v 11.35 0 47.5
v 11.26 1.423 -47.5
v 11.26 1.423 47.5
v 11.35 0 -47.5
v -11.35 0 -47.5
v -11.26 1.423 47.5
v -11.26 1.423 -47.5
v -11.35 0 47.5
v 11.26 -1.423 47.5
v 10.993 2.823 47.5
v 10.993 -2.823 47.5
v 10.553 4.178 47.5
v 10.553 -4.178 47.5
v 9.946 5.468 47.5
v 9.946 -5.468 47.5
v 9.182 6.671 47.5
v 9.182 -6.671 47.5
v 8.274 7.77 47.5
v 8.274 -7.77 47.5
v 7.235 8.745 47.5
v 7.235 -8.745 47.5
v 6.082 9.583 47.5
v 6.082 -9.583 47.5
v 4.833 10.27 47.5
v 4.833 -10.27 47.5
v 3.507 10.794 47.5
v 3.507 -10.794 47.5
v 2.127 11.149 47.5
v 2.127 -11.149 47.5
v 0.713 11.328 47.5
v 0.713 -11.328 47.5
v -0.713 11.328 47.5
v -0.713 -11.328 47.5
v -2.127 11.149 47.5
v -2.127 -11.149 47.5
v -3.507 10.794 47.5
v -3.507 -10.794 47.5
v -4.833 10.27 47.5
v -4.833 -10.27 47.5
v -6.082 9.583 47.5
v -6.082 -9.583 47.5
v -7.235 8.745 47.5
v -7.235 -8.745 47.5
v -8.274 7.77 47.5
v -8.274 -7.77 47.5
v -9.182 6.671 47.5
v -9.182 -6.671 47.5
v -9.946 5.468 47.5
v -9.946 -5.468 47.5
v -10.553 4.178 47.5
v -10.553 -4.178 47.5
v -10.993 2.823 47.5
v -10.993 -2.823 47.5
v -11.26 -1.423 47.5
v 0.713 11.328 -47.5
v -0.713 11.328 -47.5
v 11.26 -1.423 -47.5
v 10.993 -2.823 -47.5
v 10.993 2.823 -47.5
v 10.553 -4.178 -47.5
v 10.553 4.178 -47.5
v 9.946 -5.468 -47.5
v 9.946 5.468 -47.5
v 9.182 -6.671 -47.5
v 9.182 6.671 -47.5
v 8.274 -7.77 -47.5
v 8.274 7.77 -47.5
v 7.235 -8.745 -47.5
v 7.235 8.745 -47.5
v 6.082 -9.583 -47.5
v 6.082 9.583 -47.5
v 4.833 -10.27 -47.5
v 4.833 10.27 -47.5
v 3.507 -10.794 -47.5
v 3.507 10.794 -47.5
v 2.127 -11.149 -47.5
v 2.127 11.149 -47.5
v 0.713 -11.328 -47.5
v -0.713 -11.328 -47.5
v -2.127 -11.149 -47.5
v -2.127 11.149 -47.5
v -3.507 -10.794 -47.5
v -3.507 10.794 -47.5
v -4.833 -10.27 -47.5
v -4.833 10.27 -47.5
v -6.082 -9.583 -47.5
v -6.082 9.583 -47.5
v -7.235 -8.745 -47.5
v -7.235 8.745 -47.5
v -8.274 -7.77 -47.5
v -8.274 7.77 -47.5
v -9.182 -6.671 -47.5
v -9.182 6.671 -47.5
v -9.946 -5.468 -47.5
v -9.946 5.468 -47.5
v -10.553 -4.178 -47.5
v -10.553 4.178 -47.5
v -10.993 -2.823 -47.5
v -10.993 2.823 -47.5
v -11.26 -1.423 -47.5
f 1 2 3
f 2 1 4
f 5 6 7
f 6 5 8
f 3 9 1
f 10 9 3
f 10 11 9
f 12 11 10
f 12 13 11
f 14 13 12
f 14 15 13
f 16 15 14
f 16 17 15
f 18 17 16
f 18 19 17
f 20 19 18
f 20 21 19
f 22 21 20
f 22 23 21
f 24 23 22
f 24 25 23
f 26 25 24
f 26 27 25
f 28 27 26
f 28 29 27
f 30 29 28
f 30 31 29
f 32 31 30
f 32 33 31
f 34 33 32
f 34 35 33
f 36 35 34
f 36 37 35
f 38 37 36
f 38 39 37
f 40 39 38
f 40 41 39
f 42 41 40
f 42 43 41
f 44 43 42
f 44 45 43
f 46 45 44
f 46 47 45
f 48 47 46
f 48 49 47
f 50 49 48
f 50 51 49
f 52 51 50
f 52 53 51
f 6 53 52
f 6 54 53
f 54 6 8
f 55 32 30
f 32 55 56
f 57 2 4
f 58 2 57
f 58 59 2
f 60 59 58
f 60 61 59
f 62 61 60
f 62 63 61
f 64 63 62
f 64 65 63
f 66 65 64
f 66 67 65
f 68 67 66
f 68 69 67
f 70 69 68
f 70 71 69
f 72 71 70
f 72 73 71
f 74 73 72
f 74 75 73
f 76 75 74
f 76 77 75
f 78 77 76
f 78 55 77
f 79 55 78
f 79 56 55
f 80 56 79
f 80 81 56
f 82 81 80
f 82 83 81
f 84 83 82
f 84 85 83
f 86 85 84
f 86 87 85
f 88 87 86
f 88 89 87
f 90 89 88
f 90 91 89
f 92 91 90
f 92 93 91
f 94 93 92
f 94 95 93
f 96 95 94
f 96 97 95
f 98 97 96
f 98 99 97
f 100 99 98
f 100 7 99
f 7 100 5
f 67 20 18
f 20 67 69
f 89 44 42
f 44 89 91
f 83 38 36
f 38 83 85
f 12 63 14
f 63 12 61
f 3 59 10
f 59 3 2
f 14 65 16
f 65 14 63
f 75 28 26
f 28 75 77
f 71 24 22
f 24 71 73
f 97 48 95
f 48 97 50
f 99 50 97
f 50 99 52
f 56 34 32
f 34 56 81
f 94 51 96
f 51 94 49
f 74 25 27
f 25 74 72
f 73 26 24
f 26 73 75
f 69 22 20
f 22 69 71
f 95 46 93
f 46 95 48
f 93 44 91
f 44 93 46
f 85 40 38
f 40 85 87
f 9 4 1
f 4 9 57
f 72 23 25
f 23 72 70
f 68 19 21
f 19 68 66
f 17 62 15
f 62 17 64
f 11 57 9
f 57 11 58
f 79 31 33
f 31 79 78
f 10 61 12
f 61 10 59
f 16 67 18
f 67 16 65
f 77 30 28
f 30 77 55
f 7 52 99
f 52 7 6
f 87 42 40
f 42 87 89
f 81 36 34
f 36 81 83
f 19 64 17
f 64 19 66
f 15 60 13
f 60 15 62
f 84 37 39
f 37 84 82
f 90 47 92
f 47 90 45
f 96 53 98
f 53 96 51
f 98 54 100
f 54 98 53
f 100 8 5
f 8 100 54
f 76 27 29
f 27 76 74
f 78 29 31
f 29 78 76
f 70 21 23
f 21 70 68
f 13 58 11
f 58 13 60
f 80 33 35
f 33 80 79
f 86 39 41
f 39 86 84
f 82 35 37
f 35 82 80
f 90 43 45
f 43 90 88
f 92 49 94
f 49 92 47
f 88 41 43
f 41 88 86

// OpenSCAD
$fn = 50;


difference() {
	union() {
		translate(v = [0, 0, -47.5000000000]) {
			cylinder(h = 95, r = 11.3500000000);
		}
	}
	union() {
		translate(v = [0, 0, -100.0000000000]) {
			cylinder(h = 200, r = 0);
		}
	}
}
